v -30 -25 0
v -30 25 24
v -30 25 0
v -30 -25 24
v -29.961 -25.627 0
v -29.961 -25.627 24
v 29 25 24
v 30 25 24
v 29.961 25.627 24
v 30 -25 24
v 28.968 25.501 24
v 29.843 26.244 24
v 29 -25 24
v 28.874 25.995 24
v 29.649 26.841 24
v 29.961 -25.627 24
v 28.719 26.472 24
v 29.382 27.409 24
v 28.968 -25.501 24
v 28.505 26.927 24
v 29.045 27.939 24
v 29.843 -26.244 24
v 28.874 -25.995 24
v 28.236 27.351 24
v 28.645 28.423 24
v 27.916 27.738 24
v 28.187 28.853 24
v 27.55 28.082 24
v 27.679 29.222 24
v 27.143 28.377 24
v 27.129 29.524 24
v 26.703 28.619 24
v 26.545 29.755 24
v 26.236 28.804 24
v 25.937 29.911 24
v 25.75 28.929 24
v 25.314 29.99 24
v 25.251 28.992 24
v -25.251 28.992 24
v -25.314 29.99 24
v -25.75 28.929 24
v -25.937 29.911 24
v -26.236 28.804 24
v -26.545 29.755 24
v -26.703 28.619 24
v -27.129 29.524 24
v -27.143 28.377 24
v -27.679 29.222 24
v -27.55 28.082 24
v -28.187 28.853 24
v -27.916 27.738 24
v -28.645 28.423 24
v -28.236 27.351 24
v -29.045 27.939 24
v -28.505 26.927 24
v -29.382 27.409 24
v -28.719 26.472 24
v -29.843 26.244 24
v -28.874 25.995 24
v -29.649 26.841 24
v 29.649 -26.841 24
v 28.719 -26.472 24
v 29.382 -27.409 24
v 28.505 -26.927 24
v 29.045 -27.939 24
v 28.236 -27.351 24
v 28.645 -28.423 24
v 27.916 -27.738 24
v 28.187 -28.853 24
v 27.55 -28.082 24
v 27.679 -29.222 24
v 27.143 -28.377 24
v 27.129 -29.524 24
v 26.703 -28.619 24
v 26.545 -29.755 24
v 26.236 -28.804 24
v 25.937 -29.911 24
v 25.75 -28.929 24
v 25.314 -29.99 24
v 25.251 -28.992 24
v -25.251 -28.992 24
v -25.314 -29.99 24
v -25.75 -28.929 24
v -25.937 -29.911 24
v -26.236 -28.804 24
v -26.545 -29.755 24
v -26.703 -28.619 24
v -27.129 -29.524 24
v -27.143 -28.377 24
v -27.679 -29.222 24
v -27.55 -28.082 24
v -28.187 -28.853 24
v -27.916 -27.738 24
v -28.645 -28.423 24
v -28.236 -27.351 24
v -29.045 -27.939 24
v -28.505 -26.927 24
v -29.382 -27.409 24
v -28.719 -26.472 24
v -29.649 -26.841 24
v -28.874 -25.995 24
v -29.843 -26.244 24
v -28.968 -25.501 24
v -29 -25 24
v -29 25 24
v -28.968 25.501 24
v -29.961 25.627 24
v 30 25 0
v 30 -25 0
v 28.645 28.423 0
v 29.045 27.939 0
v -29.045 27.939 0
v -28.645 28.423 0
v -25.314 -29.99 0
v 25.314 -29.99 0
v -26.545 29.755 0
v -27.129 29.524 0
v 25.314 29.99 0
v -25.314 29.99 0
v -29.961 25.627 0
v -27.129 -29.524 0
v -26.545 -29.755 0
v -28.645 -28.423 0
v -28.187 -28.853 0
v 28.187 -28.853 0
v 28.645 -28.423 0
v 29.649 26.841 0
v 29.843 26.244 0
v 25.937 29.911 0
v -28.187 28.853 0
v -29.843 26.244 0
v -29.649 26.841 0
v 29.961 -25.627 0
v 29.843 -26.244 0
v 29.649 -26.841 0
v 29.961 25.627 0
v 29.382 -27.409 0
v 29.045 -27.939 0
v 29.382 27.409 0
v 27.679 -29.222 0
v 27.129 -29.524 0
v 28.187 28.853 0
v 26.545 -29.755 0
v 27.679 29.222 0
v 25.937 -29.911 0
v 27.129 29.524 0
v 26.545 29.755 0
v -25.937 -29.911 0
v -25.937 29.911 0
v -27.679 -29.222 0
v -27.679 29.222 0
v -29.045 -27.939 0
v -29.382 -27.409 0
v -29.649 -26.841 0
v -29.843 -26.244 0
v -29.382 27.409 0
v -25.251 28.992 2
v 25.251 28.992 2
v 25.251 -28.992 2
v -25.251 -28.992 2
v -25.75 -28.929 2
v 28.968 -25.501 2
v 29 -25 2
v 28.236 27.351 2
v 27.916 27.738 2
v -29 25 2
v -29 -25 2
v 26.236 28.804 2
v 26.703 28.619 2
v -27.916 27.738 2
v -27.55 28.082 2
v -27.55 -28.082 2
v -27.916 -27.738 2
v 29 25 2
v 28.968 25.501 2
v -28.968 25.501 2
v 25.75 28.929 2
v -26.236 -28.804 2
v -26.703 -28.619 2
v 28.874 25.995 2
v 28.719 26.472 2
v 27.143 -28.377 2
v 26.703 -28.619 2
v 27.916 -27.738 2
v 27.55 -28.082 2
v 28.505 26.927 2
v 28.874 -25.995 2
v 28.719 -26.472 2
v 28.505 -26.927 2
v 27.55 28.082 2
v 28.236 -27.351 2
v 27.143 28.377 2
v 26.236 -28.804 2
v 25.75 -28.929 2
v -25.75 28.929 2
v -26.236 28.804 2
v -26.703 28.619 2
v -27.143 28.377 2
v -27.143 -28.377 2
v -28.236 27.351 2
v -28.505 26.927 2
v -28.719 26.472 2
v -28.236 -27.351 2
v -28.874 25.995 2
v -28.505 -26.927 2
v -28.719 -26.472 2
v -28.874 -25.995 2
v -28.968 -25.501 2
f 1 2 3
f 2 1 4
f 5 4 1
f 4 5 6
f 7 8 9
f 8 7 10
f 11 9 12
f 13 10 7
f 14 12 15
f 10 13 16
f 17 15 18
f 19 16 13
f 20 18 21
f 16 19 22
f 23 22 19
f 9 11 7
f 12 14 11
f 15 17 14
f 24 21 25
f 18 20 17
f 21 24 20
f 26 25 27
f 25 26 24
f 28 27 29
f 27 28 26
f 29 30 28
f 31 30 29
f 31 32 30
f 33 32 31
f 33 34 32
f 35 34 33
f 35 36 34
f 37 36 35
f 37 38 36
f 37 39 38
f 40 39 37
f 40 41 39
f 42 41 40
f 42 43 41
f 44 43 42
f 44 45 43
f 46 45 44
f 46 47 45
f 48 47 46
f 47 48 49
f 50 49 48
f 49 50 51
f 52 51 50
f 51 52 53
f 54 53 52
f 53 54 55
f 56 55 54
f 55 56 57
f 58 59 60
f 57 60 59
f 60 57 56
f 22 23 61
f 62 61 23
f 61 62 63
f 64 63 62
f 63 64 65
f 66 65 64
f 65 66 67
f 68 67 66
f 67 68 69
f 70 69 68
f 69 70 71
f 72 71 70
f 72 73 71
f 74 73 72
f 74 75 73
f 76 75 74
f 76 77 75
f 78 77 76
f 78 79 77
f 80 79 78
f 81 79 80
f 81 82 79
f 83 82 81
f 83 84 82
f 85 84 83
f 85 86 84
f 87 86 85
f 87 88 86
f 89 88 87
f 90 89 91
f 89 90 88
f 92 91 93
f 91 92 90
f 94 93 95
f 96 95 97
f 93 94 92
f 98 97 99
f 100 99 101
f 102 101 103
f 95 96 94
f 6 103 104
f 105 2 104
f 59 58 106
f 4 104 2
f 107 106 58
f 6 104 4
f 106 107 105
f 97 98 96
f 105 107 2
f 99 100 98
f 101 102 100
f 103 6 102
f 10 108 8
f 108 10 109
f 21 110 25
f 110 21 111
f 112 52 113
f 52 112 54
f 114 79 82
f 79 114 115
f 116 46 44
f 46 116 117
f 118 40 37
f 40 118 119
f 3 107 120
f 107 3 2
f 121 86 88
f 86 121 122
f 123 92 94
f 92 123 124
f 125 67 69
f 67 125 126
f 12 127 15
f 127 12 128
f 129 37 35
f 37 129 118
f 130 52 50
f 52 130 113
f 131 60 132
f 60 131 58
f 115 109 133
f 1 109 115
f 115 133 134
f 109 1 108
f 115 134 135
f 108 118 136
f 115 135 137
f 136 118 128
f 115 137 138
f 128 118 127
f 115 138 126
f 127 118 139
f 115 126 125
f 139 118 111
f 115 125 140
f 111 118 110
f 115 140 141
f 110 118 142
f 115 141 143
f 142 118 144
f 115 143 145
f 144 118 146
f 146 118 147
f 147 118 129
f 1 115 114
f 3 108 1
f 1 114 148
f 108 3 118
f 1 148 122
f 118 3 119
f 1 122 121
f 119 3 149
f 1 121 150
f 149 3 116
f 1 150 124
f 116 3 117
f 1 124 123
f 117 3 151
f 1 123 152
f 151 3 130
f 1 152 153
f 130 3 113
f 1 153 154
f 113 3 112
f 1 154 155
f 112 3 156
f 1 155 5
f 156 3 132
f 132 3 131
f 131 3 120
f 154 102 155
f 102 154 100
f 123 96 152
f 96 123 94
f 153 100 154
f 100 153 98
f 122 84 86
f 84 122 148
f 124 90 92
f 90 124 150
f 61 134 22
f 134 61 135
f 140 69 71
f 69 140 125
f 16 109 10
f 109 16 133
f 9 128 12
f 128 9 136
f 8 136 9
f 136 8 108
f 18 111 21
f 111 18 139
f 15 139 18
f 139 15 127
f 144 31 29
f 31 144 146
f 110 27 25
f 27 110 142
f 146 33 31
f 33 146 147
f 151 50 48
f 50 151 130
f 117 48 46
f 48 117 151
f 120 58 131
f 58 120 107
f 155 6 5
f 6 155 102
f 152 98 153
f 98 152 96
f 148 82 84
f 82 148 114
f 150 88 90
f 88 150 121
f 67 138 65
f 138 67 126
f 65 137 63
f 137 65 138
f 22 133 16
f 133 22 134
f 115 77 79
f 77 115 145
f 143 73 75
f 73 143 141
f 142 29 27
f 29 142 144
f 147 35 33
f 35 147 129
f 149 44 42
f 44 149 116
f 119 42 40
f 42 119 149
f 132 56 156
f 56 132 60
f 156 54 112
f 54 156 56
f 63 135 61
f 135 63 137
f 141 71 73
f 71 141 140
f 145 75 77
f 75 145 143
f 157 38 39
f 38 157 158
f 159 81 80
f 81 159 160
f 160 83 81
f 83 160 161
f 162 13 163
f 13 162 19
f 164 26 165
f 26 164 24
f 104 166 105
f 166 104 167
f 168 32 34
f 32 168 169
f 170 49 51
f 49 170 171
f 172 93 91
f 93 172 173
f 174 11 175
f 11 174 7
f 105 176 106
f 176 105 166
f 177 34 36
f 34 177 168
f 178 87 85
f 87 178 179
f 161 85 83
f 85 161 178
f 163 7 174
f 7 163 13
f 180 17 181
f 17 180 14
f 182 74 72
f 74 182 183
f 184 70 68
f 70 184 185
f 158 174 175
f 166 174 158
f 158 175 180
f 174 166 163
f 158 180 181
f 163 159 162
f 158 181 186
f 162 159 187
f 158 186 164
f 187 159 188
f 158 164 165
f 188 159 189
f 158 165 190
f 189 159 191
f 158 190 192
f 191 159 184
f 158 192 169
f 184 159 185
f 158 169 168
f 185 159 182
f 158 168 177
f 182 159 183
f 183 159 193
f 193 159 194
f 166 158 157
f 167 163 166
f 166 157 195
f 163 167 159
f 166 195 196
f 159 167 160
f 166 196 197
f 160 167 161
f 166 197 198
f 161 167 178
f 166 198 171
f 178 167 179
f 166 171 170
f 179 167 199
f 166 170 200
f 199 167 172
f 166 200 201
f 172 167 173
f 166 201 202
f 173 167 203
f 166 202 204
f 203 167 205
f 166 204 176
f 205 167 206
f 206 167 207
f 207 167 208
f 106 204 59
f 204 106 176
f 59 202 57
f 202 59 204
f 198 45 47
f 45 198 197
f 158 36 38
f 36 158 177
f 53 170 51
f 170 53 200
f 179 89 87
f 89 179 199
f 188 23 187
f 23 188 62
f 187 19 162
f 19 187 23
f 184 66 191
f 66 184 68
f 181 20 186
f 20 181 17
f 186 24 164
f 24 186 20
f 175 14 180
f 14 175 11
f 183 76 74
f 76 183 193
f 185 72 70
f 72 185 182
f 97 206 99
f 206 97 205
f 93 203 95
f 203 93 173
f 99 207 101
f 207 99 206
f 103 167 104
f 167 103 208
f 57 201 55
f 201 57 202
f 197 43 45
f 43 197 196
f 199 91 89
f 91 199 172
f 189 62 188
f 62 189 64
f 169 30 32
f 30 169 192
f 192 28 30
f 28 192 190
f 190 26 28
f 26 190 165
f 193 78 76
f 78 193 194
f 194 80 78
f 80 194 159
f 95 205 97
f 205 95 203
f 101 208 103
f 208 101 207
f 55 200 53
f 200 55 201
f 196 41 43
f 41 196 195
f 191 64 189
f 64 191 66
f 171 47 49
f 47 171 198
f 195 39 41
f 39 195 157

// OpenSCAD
$fn = 50;


difference() {
	union() {
		hull() {
			translate(v = [-25.0000000000, 25.0000000000, 0]) {
				cylinder(h = 24, r = 5);
			}
			translate(v = [25.0000000000, 25.0000000000, 0]) {
				cylinder(h = 24, r = 5);
			}
			translate(v = [-25.0000000000, -25.0000000000, 0]) {
				cylinder(h = 24, r = 5);
			}
			translate(v = [25.0000000000, -25.0000000000, 0]) {
				cylinder(h = 24, r = 5);
			}
		}
	}
	union() {
		translate(v = [0, 0, 2]) {
			hull() {
				translate(v = [-25.0000000000, 25.0000000000, 0]) {
					cylinder(h = 22, r = 4);
				}
				translate(v = [25.0000000000, 25.0000000000, 0]) {
					cylinder(h = 22, r = 4);
				}
				translate(v = [-25.0000000000, -25.0000000000, 0]) {
					cylinder(h = 22, r = 4);
				}
				translate(v = [25.0000000000, -25.0000000000, 0]) {
					cylinder(h = 22, r = 4);
				}
			}
		}
	}
}
